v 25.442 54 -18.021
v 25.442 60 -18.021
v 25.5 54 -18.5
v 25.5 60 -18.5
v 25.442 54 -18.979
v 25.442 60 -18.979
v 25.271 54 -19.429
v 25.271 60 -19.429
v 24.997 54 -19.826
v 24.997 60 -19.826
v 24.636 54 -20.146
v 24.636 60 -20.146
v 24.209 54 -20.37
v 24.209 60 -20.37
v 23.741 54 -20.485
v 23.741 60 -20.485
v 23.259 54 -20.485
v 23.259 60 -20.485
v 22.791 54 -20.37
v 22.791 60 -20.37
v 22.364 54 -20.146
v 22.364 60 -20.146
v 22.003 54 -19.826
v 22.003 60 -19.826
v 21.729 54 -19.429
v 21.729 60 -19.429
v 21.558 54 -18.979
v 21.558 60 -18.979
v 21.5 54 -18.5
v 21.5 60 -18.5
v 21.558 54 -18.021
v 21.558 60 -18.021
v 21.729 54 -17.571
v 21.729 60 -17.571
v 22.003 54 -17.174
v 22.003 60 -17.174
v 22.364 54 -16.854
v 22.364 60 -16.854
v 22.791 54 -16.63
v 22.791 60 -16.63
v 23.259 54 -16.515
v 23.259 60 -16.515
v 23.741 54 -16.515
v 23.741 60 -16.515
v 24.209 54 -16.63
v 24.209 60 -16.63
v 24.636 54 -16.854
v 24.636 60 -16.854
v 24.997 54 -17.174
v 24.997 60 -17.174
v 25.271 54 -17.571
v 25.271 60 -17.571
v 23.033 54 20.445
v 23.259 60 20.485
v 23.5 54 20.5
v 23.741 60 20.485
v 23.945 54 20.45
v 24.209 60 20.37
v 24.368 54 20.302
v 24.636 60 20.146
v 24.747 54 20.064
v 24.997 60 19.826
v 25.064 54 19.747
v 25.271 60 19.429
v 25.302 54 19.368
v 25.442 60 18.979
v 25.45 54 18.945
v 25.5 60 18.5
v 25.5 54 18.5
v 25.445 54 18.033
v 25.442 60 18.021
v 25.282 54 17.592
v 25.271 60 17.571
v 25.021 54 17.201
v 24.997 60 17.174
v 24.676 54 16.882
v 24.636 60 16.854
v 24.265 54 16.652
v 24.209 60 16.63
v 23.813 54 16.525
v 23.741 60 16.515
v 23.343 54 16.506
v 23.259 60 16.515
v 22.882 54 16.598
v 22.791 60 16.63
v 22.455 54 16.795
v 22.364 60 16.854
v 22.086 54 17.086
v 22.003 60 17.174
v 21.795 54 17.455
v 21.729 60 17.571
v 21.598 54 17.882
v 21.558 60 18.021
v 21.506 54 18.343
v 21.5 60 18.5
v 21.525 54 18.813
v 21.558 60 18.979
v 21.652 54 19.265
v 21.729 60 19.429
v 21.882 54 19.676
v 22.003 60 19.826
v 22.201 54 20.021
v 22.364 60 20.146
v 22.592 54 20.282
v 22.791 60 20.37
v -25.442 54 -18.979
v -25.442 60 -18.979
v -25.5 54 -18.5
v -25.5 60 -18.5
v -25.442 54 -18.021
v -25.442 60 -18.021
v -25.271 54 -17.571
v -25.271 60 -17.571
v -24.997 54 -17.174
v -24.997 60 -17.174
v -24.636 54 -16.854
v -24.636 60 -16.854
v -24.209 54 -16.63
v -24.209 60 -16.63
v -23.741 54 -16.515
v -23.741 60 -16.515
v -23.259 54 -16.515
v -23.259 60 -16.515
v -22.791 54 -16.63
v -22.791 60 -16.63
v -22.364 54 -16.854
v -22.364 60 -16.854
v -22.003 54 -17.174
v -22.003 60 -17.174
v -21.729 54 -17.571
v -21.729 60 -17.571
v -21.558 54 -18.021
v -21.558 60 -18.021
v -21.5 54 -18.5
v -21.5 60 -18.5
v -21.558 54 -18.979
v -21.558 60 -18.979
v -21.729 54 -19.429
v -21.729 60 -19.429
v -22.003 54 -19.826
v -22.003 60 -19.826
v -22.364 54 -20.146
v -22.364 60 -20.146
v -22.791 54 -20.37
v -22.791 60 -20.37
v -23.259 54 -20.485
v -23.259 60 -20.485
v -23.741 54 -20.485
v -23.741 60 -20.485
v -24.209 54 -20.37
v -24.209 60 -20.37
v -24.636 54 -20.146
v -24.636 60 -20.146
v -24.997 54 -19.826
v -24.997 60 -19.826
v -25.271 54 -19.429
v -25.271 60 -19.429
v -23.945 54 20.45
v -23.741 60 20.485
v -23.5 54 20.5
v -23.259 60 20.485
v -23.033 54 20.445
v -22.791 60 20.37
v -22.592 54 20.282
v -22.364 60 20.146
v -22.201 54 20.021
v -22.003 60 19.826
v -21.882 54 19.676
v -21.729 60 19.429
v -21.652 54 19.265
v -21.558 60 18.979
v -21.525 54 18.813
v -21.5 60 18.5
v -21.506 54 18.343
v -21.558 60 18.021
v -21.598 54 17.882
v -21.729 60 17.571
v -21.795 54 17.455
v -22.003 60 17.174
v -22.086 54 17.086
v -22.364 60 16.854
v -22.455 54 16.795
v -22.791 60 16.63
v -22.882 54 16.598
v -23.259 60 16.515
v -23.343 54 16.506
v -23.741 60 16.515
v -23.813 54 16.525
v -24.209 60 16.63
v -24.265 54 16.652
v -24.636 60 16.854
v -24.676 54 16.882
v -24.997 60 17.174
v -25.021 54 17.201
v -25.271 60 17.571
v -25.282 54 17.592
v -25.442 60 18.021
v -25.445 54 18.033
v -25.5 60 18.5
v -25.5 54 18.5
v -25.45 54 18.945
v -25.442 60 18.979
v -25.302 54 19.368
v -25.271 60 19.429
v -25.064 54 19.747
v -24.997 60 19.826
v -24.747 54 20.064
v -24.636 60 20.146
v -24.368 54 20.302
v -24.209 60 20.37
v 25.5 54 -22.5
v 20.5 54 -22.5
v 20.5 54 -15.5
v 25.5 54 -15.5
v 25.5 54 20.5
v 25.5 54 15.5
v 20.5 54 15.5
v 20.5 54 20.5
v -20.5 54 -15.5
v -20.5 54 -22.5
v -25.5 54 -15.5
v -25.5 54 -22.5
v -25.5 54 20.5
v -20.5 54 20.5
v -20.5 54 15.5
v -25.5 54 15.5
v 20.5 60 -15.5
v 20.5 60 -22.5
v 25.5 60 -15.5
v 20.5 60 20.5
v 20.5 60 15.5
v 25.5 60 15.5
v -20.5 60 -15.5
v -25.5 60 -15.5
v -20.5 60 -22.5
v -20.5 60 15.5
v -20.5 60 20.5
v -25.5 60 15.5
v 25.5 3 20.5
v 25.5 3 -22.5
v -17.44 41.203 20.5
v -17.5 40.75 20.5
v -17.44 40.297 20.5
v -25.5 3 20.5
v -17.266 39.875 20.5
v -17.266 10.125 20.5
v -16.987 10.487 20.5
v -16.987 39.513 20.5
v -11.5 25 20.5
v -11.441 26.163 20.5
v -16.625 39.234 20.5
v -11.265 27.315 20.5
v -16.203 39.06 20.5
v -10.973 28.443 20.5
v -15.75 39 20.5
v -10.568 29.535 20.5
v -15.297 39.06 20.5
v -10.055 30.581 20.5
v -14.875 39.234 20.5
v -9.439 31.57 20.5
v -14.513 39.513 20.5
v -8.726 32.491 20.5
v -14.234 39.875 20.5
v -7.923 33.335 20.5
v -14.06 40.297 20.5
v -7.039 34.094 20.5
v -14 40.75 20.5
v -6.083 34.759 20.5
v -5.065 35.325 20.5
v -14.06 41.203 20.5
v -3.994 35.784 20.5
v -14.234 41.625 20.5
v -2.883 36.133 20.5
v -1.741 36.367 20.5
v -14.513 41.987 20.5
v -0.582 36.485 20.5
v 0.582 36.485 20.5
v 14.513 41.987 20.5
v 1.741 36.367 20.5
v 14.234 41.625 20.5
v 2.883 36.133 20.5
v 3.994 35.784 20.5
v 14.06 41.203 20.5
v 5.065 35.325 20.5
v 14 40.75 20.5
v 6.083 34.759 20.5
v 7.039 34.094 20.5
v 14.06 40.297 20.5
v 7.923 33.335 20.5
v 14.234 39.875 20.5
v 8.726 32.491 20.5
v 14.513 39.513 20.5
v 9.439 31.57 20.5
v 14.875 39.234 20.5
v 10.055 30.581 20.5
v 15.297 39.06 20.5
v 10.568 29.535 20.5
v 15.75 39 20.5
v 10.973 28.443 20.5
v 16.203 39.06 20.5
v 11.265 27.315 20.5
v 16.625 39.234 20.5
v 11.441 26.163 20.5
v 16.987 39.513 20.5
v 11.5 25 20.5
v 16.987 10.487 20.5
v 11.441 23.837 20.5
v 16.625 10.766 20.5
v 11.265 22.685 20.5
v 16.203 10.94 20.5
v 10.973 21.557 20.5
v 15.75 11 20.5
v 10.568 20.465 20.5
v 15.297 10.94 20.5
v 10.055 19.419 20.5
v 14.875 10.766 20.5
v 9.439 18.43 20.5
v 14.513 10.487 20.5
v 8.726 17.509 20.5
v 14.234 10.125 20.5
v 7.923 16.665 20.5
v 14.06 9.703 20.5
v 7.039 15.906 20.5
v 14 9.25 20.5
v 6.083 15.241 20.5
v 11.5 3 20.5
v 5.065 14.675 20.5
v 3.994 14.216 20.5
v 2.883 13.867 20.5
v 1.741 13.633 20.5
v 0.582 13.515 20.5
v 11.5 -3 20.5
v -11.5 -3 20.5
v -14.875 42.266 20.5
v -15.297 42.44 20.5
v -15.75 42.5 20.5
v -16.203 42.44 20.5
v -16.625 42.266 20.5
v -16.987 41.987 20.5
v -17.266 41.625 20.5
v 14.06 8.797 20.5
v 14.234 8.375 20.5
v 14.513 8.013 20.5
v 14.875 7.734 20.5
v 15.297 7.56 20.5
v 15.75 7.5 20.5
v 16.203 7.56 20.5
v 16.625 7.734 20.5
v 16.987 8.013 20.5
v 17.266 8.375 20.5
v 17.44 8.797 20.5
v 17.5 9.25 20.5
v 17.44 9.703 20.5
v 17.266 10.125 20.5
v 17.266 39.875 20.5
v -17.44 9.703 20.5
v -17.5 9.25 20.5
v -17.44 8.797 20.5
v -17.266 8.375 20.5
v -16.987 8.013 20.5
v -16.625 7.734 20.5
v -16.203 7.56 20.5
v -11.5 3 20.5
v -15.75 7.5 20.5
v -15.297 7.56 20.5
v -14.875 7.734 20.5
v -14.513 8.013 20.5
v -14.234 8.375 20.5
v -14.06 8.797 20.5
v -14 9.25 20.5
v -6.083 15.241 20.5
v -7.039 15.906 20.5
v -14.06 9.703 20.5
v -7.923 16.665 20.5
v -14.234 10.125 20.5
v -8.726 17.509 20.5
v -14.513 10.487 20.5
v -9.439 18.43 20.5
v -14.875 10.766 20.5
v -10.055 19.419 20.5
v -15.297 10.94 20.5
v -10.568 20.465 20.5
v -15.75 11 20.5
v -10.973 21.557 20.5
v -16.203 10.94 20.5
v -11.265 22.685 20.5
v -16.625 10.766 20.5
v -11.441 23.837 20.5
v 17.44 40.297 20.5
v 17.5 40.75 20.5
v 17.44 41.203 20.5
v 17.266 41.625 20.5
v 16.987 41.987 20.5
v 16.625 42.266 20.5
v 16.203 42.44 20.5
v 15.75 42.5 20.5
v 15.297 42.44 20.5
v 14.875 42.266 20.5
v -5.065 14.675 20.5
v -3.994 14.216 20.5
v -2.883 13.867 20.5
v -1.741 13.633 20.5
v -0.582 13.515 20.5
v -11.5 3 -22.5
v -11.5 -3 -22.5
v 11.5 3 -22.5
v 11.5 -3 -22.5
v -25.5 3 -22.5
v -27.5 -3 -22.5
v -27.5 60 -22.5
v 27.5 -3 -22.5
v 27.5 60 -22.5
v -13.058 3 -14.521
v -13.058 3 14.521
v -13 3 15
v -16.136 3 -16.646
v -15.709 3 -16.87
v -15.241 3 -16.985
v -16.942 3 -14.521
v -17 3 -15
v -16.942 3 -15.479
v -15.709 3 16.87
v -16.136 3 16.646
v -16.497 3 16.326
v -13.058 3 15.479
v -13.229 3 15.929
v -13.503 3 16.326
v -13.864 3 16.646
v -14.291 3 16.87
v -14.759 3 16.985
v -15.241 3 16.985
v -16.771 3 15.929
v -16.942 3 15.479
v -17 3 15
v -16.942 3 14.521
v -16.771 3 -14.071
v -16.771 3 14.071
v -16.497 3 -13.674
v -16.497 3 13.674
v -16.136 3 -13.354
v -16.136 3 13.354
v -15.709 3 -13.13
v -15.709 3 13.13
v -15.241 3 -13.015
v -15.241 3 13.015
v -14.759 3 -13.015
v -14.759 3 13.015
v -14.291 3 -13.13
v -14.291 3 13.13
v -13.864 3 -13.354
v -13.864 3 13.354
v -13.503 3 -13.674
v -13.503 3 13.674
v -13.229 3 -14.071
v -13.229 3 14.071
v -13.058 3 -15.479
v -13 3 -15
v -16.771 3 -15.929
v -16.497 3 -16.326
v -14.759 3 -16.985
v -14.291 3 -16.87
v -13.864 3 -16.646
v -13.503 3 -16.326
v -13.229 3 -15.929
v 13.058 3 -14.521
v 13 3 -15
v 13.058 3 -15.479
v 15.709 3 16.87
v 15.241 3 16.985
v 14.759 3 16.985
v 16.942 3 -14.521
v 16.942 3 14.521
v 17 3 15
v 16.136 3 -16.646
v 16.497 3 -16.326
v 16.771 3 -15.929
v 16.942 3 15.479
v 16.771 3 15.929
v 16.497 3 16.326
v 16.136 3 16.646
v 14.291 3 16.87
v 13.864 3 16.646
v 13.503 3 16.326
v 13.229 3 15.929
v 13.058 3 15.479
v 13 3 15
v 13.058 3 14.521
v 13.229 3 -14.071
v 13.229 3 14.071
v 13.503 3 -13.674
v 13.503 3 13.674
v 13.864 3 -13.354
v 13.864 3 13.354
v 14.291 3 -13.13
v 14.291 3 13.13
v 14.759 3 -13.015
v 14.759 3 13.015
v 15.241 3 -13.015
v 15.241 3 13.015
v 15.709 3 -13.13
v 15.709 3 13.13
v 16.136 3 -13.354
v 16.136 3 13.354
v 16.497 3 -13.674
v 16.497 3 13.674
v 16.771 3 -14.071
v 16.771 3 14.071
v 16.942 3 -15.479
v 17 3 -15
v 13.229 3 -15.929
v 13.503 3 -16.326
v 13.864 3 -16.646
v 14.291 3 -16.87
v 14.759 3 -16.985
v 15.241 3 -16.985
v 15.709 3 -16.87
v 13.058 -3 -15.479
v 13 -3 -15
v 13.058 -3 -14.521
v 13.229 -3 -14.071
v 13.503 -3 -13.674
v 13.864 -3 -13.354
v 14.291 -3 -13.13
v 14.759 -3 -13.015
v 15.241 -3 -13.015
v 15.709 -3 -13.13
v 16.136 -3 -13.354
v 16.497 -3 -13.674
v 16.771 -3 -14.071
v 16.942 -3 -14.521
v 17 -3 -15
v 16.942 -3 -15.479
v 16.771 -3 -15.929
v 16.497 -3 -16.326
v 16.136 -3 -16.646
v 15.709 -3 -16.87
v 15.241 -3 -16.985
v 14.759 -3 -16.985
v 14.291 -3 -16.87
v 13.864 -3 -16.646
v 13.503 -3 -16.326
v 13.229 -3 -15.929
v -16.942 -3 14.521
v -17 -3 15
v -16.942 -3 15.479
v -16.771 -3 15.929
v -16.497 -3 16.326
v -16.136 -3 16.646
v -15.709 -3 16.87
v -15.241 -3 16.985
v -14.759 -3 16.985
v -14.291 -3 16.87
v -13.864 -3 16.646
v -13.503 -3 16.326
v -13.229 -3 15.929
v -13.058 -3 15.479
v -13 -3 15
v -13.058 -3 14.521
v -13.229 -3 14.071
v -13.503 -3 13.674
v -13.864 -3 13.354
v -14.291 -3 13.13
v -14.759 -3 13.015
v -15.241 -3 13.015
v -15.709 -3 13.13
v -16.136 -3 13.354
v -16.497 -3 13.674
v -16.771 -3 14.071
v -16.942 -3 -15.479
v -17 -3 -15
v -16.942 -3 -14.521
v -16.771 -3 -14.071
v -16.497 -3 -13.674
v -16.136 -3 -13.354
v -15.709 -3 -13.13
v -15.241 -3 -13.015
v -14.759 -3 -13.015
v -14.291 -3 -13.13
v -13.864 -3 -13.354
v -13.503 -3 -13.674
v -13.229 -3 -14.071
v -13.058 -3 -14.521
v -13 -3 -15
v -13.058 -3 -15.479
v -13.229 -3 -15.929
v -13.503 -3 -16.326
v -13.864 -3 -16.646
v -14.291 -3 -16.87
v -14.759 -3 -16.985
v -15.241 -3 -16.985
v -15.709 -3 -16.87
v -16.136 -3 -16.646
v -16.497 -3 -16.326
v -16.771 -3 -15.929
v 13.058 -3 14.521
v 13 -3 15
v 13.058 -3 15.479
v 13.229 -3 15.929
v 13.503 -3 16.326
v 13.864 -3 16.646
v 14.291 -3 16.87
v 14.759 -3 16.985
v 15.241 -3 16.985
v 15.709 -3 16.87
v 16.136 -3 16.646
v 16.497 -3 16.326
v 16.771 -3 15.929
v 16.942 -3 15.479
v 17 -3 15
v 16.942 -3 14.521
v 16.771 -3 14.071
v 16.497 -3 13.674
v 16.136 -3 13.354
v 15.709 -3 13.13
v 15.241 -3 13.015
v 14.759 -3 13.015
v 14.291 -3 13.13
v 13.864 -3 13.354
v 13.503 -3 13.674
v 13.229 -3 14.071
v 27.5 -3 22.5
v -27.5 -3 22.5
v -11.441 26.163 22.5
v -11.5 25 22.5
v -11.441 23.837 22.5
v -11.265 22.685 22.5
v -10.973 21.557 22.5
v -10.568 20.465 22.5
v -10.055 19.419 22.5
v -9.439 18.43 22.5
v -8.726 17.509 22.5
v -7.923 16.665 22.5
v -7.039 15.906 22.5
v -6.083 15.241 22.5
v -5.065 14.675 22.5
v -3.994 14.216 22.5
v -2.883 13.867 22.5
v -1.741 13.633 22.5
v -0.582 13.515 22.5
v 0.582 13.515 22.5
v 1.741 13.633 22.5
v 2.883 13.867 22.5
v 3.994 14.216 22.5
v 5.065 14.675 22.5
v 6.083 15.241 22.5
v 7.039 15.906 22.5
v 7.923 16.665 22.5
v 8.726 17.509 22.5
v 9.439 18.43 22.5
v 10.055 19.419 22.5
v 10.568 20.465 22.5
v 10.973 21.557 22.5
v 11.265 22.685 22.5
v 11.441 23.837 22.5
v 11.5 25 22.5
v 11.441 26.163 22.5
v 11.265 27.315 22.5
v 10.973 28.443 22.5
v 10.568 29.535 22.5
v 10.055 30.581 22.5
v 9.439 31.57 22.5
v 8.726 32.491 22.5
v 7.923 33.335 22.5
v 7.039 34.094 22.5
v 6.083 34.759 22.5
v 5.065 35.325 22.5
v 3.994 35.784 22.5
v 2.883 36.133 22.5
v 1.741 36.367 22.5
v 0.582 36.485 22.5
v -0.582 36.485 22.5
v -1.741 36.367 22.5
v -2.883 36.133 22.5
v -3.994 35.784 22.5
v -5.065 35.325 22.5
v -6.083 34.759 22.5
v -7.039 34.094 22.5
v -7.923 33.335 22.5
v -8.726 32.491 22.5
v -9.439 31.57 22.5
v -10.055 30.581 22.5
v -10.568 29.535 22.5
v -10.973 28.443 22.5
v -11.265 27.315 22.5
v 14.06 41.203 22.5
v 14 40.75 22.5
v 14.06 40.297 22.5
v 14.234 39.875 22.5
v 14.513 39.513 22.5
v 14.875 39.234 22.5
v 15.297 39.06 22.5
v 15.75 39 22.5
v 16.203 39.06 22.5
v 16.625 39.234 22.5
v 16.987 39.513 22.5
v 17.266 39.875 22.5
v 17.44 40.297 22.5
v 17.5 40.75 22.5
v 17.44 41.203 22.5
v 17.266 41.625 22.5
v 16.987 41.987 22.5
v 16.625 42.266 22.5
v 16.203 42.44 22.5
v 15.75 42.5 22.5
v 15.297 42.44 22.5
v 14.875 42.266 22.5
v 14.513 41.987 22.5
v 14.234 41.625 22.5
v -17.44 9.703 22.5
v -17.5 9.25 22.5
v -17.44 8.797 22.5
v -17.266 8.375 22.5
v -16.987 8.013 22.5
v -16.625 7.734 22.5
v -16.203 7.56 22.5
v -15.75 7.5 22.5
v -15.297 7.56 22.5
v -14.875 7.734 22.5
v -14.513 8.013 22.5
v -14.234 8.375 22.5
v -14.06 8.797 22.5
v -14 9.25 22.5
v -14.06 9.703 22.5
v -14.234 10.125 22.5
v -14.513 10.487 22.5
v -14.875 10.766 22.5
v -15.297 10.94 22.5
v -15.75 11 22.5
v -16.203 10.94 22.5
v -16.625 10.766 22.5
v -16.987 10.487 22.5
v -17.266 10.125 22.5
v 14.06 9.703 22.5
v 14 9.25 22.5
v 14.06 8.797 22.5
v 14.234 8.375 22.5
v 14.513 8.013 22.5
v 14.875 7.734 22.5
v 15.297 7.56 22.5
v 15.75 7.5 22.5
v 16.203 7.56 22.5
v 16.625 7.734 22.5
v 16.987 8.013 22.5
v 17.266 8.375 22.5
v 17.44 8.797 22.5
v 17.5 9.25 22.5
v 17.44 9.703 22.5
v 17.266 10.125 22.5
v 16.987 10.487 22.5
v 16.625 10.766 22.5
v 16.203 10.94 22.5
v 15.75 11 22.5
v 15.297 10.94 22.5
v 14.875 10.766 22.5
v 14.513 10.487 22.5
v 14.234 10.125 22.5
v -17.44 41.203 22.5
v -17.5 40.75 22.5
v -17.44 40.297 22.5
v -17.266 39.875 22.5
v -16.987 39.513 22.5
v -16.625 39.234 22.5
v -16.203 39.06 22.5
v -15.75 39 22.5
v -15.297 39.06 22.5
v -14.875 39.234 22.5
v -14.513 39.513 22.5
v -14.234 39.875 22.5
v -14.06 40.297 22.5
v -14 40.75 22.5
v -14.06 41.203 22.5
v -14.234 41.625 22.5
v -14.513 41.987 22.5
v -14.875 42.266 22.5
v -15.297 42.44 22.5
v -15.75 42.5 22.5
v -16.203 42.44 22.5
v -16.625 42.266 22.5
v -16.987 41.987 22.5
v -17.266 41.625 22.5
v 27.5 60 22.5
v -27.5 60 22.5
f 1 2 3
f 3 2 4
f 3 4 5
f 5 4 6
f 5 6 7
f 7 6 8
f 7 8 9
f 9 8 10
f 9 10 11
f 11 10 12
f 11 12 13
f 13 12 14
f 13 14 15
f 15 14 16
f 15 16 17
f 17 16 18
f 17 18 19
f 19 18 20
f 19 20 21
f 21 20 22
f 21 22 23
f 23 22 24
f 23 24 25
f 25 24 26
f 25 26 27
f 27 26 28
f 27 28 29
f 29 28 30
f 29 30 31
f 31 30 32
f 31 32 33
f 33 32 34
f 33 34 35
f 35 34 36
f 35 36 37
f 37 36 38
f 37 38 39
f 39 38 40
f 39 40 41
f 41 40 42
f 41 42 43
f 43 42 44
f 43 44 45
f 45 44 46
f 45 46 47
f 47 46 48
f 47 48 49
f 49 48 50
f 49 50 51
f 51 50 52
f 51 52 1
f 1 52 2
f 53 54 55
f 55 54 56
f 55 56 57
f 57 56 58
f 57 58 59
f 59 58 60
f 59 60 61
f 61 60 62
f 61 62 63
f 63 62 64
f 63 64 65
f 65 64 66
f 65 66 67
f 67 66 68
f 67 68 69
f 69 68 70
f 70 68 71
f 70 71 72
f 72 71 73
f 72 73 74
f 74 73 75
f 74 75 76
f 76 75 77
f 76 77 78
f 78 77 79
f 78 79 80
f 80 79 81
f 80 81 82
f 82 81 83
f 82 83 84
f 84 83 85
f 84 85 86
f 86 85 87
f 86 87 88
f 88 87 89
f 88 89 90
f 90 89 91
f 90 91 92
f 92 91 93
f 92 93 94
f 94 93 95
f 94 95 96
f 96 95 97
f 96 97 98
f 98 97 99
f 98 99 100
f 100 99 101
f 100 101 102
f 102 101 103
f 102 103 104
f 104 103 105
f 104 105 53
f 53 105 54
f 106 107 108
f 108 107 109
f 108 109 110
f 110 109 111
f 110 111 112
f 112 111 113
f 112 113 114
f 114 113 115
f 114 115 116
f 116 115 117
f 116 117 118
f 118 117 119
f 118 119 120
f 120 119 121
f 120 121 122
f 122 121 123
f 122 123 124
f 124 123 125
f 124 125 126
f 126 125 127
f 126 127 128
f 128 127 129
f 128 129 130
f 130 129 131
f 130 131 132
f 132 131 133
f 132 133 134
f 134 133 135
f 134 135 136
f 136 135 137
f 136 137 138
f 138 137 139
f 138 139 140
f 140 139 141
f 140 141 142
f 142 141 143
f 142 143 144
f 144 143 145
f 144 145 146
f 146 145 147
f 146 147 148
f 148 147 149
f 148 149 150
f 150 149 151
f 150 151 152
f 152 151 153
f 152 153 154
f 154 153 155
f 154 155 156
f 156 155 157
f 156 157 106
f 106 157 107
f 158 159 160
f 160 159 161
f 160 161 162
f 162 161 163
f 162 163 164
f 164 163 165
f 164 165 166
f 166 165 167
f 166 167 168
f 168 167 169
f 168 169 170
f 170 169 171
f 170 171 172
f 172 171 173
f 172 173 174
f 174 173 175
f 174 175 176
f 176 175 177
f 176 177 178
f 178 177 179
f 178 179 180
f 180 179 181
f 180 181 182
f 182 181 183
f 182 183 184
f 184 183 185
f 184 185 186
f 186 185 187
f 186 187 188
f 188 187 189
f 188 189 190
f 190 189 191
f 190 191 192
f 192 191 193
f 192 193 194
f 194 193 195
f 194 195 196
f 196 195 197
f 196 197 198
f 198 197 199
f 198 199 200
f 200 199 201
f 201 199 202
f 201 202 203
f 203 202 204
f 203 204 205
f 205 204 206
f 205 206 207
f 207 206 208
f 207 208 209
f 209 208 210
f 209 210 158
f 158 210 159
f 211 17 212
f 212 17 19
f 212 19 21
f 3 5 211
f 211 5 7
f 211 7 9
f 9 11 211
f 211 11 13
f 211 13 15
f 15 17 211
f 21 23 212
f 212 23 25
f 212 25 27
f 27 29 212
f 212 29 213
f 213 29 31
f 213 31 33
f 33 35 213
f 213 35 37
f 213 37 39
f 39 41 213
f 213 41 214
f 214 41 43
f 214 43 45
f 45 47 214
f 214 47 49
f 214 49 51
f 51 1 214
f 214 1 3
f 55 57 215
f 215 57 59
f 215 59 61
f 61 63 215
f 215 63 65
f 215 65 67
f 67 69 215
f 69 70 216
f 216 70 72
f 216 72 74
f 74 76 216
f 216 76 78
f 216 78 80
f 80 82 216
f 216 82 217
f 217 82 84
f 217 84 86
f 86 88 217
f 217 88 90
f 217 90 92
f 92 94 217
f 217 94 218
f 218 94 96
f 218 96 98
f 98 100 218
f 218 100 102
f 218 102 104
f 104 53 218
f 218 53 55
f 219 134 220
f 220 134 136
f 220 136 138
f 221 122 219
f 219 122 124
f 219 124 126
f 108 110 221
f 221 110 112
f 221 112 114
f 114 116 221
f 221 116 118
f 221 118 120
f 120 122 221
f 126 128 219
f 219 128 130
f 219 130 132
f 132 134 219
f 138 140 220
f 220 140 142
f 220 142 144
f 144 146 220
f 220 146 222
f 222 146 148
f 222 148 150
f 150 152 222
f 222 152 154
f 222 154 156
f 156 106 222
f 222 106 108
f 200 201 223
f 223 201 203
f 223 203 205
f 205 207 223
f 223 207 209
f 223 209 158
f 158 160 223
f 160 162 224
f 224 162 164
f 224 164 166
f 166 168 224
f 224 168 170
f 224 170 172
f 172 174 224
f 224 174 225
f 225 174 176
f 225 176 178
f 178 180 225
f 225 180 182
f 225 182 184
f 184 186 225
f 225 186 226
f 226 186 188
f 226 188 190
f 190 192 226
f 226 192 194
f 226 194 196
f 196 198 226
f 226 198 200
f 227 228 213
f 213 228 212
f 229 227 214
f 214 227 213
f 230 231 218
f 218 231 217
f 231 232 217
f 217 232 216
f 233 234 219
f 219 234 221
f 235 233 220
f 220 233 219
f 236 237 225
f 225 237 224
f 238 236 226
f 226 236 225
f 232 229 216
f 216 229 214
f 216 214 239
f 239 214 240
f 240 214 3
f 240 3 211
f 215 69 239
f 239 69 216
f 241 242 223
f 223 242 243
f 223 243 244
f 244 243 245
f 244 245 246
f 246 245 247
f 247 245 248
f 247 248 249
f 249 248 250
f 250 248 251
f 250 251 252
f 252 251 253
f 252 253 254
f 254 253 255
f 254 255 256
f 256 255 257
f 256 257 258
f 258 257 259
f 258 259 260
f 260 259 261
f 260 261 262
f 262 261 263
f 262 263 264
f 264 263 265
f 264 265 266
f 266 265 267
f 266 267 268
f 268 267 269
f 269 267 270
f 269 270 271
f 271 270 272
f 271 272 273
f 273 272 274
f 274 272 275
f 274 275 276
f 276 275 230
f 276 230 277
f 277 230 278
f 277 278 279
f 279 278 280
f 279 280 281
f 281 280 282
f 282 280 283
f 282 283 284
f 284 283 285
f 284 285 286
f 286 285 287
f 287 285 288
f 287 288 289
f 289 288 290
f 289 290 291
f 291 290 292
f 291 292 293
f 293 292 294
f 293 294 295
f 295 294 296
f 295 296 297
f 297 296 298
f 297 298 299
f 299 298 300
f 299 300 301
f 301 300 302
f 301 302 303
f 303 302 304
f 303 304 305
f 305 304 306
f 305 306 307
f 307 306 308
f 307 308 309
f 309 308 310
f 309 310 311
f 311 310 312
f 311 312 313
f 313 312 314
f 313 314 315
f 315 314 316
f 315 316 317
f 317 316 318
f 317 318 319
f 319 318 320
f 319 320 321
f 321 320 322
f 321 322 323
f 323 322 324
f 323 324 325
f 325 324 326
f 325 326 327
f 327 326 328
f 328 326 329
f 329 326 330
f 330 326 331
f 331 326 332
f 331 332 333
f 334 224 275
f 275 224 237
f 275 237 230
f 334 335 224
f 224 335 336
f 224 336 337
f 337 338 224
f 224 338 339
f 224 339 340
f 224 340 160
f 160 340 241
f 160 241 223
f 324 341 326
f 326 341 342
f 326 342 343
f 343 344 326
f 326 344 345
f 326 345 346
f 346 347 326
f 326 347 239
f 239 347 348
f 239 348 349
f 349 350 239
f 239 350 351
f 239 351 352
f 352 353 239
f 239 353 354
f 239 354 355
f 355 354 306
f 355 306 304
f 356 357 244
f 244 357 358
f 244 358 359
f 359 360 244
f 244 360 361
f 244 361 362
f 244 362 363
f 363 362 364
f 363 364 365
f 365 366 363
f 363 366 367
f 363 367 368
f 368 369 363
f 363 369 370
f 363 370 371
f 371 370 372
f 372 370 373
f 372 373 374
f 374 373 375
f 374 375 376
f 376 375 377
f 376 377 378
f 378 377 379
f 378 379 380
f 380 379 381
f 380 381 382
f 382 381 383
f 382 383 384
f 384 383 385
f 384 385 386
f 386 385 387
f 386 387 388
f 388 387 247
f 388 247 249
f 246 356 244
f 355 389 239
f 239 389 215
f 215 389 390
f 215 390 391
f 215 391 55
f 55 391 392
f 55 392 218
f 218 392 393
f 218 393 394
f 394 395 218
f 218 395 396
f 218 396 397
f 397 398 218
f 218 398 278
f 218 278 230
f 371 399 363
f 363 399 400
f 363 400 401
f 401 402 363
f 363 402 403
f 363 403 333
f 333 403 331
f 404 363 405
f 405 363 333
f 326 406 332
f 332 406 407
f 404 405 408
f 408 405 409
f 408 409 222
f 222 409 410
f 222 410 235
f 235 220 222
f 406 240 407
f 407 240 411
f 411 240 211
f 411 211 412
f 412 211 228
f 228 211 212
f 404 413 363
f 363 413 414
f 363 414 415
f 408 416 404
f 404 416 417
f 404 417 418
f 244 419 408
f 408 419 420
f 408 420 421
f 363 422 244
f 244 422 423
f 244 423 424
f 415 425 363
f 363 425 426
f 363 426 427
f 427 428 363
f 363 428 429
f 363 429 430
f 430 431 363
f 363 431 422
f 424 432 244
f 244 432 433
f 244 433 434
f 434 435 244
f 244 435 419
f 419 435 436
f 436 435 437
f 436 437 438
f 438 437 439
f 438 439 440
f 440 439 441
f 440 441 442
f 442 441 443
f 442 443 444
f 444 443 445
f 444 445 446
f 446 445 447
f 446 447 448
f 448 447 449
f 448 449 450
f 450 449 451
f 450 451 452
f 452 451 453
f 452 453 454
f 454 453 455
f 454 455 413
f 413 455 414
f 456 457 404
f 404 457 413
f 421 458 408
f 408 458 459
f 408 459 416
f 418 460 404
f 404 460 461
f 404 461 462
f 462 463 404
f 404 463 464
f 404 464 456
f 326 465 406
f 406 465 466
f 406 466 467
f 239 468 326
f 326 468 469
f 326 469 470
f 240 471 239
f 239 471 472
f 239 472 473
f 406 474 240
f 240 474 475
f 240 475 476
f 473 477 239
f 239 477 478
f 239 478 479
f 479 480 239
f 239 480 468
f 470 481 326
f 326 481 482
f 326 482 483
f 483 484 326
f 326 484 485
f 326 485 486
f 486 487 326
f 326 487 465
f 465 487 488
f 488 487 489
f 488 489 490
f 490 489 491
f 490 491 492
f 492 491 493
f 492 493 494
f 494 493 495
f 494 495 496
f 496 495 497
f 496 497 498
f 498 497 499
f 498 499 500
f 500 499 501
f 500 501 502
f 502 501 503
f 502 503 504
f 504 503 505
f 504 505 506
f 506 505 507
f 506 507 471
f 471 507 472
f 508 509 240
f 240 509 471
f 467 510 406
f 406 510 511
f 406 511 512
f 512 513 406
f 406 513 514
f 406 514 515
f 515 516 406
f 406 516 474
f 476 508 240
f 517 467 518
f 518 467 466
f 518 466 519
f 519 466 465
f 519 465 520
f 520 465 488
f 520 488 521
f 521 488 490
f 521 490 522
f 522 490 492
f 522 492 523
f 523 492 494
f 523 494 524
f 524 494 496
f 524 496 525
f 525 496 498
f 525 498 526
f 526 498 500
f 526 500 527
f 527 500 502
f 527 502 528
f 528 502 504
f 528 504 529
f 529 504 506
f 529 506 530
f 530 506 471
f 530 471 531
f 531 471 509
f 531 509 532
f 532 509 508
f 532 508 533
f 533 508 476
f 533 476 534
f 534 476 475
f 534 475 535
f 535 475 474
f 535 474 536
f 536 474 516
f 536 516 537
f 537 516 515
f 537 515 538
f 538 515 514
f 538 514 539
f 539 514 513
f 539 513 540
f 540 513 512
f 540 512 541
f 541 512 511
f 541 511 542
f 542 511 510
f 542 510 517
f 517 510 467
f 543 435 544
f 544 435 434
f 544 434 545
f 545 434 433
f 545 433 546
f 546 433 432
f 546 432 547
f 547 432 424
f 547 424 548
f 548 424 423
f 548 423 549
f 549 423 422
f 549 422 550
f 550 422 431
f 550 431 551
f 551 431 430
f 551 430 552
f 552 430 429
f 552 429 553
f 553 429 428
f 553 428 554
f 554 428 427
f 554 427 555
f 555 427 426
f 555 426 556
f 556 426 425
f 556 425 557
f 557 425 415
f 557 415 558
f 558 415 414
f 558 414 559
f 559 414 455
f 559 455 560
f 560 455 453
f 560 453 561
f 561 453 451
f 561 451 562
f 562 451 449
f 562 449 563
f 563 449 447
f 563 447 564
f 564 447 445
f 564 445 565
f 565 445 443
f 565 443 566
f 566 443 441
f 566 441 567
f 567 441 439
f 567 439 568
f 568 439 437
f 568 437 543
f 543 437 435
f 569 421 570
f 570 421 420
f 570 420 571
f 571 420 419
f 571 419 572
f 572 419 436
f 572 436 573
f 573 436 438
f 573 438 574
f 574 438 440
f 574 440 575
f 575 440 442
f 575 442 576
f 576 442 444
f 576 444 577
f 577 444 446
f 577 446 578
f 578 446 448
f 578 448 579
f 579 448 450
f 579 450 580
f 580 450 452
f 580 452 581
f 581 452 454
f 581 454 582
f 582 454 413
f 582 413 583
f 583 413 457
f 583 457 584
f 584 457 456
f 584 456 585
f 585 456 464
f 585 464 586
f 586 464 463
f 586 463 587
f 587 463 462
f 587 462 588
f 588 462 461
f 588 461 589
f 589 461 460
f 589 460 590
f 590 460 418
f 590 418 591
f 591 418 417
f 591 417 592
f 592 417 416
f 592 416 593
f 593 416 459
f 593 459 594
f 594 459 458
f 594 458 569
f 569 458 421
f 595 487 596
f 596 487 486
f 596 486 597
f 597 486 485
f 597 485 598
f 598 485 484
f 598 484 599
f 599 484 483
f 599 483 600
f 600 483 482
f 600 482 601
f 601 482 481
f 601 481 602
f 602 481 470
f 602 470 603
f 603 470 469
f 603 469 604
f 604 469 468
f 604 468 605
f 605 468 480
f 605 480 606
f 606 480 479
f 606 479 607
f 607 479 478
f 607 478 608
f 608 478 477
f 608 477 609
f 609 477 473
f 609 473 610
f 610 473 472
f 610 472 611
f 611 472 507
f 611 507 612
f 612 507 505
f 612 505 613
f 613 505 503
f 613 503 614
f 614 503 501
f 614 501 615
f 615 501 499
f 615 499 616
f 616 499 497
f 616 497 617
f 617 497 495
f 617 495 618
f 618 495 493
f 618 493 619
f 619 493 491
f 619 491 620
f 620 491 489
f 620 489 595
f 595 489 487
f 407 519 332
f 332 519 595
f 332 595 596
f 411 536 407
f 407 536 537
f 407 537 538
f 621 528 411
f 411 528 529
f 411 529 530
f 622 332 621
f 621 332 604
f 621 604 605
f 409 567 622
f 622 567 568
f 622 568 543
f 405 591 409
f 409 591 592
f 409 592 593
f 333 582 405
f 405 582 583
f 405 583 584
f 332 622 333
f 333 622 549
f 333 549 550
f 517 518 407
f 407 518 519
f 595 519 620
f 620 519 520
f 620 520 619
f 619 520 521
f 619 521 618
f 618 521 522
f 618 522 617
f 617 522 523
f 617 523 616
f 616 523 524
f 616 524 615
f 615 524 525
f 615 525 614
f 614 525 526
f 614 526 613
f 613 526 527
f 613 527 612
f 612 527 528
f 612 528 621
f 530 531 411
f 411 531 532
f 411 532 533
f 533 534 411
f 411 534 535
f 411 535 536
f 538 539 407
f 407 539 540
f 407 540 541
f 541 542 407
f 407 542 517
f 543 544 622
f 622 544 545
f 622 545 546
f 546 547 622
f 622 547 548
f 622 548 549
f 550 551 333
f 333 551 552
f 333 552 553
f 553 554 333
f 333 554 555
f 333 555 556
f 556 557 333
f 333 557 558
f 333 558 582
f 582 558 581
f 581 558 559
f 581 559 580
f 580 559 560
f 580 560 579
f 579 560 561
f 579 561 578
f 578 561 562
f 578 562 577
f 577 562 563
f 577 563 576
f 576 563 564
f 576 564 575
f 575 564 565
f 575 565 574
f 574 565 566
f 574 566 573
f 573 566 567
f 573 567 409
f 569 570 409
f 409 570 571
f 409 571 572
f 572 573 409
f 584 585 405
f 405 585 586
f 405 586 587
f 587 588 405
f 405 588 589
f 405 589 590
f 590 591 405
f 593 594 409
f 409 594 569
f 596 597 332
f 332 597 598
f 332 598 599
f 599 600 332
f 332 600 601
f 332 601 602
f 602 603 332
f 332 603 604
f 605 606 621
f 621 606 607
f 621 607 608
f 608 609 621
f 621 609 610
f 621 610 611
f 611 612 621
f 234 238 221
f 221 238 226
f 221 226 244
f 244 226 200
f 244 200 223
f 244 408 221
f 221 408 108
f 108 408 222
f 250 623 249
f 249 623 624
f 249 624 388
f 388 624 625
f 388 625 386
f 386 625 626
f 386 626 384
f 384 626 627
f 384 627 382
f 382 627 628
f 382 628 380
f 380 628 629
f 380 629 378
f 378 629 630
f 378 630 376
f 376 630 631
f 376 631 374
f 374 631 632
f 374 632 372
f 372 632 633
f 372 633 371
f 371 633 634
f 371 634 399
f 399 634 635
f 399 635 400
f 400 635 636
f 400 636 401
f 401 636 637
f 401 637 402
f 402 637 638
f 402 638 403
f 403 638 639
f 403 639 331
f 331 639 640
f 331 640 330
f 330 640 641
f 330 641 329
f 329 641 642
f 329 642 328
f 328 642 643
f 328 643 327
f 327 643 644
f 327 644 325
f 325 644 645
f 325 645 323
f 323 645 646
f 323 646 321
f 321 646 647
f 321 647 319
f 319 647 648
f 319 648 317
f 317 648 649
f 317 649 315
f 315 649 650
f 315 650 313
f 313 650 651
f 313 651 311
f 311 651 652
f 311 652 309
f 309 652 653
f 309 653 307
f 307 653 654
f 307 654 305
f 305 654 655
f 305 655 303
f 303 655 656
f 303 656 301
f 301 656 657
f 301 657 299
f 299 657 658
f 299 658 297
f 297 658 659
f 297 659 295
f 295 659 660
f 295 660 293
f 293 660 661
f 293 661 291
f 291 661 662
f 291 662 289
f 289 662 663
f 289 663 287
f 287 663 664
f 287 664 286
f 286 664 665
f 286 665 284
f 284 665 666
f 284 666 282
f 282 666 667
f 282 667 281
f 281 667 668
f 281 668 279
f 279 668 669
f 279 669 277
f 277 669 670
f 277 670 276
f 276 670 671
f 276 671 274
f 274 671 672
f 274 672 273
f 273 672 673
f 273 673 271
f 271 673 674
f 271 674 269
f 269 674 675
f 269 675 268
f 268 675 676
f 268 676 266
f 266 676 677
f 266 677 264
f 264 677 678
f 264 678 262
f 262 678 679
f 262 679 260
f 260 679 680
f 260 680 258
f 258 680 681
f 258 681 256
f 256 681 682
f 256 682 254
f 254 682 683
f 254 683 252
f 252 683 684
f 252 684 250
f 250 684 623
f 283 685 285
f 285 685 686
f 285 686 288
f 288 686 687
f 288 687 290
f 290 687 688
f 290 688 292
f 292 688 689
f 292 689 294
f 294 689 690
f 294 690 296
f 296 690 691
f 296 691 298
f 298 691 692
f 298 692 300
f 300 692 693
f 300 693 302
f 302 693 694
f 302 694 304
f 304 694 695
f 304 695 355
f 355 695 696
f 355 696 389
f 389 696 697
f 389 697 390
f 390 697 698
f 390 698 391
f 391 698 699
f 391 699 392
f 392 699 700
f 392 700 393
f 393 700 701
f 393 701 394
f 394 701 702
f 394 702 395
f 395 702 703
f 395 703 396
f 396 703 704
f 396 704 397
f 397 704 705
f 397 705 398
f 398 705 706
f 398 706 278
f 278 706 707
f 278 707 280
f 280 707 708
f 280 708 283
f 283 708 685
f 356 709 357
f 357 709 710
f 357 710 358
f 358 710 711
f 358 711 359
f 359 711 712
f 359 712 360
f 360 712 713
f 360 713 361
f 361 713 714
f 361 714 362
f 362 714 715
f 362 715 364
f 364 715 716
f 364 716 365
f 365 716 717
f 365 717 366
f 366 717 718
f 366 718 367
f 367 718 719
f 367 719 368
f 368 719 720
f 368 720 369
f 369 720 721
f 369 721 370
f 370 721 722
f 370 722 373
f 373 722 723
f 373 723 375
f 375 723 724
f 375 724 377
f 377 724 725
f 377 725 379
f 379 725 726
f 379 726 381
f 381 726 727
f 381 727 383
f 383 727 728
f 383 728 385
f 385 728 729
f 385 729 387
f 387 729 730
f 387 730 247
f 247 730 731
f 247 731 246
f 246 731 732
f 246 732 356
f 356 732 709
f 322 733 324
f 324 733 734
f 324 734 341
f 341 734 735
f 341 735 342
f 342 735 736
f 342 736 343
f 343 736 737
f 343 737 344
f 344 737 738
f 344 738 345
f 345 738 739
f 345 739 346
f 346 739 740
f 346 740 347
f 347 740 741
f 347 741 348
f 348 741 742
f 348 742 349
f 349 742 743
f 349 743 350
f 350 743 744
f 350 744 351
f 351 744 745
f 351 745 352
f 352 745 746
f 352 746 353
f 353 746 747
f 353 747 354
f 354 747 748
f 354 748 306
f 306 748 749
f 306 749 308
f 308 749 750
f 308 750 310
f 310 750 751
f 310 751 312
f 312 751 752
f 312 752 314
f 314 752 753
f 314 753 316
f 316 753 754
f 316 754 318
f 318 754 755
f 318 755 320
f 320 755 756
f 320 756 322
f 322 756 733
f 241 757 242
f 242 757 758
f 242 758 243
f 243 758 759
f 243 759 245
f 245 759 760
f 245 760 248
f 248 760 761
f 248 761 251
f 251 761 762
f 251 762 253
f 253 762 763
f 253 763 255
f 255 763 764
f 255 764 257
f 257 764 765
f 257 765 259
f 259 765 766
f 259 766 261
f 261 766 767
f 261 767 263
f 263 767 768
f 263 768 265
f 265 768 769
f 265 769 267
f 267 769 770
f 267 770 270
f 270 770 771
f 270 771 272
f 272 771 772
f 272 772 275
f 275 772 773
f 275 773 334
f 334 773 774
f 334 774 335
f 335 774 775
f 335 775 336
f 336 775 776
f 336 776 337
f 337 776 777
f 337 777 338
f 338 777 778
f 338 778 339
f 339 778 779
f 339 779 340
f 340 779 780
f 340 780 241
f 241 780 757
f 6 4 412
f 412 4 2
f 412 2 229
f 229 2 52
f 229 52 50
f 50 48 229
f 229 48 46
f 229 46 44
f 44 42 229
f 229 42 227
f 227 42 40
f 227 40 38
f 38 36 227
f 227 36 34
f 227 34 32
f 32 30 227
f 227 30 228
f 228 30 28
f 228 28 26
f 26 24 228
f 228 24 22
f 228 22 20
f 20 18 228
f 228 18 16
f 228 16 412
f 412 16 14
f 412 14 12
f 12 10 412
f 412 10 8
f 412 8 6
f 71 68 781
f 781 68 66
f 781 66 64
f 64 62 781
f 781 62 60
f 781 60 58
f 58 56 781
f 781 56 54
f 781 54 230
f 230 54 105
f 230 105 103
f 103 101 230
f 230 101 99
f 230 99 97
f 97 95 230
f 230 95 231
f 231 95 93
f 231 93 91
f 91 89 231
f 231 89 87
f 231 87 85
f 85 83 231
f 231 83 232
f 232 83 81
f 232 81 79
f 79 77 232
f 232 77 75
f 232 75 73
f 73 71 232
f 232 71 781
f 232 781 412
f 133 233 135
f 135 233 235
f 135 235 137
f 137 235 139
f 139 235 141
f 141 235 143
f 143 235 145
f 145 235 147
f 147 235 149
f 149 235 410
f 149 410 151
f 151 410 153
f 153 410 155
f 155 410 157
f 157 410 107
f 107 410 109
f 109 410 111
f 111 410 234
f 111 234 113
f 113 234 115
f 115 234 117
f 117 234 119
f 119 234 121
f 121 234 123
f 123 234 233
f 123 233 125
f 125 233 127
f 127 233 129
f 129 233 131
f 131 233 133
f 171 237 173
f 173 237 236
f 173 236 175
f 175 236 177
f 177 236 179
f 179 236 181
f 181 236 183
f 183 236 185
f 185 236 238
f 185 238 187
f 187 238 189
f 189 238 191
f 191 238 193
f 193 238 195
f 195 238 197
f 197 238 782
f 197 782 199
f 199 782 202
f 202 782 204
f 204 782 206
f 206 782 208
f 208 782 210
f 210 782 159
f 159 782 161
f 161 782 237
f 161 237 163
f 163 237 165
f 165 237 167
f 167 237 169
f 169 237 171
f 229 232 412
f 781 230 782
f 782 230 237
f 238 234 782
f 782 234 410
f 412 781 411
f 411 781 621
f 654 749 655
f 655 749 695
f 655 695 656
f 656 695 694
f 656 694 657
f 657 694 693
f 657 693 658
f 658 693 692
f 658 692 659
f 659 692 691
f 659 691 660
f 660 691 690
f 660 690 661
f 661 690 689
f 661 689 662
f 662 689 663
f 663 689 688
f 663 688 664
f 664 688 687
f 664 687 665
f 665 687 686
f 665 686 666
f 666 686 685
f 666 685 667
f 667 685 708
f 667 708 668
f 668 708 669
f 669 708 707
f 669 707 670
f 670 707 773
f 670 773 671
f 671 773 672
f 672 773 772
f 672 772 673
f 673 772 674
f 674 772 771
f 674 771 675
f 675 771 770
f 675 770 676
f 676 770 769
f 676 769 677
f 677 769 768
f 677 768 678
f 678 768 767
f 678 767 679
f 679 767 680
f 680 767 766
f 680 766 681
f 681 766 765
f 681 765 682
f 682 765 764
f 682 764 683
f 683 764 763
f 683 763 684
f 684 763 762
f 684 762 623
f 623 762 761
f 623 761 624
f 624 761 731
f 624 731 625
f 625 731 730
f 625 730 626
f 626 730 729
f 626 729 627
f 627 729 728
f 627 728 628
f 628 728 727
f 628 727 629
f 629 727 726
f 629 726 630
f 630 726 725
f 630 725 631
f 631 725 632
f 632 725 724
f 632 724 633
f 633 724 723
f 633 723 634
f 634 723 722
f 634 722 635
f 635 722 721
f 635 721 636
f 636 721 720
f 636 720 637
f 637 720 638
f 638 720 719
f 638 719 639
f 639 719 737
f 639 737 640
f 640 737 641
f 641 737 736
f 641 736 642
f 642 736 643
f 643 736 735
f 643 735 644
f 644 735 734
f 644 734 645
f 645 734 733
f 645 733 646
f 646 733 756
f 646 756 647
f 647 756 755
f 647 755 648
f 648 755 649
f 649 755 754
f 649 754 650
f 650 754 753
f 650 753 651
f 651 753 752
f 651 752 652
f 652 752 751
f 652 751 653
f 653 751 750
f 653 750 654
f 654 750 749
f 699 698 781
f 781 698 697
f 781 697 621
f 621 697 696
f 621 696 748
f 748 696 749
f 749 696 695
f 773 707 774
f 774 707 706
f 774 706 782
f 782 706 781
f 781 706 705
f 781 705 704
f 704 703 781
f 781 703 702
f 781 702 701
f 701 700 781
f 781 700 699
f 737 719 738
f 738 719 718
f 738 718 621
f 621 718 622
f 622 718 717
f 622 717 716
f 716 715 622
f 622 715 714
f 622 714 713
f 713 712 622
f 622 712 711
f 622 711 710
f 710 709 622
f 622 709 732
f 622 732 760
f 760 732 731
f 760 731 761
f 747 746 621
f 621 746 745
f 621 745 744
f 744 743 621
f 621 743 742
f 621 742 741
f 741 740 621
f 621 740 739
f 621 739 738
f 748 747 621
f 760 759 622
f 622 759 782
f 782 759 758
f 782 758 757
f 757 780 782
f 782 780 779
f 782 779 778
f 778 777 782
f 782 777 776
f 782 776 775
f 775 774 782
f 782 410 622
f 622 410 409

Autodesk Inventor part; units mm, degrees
ref_plane "YZ Plane" through (0, 0, 0) normal (1, 0, 0) x (0, 1, 0)
ref_plane "XZ Plane" through (0, 0, 0) normal (0, 1, 0) x (-1, 0, 0)
ref_plane "XY Plane" through (0, 0, 0) normal (0, 0, 1) x (1, 0, 0)
sketch "Skizze1" plane through (0, 0, 0) normal (0, 1, 0) x (-1, 0, 0)
  line L0 (-27.5, 22.5) -> (27.5, 22.5)
  line L1 (27.5, 22.5) -> (27.5, -22.5)
  line L2 (27.5, -22.5) -> (-27.5, -22.5)
  line L3 (-27.5, -22.5) -> (-27.5, 22.5)
  line L4 (0, -31.5) -> (0, 31.5) projected
  line L5 (38.5, 0) -> (-38.5, 0) projected
  point P0 (0, 0)
  dimension "d0" = 55
  dimension "d1" = 45
extrude "Extrusion1" add sketch "Skizze1" along normal blind 3
sketch "Skizze2" plane through (0, 3, 0) normal (0, 1, 0) x (1, 0, 0)
  line L0 (-27.5, 22.5) -> (-27.5, -22.5) projected
  line L1 (27.5, -22.5) -> (27.5, 22.5) projected
  line L2 (-27.5, -22.5) -> (27.5, -22.5)
  line L3 (27.5, -22.5) -> (27.5, -20.5)
  line L4 (27.5, -20.5) -> (-27.5, -20.5)
  line L5 (-27.5, -20.5) -> (-27.5, -22.5)
  point P0 (0, 0)
  dimension "d4" = 2
extrude "Extrusion2" add sketch "Skizze2" along normal blind 57
sketch "Skizze3" plane through (-27.5, 0, 22.5) normal (0, 0, 1) x (1, 0, 0)
  circle A0 centre (27.5, 25) radius 11.5
  line L0 (0, 0) -> (55, 0) projected
  line L1 (55, 0) -> (55, 60) projected
  circle A1 centre (43.25, 9.25) radius 1.75
  circle A2 centre (11.75, 9.25) radius 1.75
  circle A3 centre (11.75, 40.75) radius 1.75
  circle A4 centre (43.25, 40.75) radius 1.75
  line L2 (0, 60) -> (55, 60) projected
  line L3 (27.5, 60) -> (27.5, 0)
  line L4 (4.6208, 25) -> (55, 25)
  dimension "d7" = 23
  dimension "d10" = 3.5
  dimension "d11" = 3.5
  dimension "d12" = 3.5
  dimension "d13" = 3.5
  dimension "d17" = 31.5
  dimension "d48" = 0
extrude "Extrusion3" cut sketch "Skizze3" against normal up to surface (2 mm away) contours L4 L3 A0 | A0 L3 L4 | L3 L4 A0 | A0 L4 L3 | A1 | A2 | A3 | A4
sketch "Skizze10" plane through (0, 3, 0) normal (0, 1, 0) x (1, 0, 0)
  line L0 (27.5, -20.5) -> (27.5, 22.5) projected
  line L1 (27.5, 22.5) -> (-27.5, 22.5) projected
  line L2 (27.5, -20.5) -> (25.5, -20.5)
  line L3 (25.5, -20.5) -> (25.5, 22.5)
  line L4 (25.5, 22.5) -> (27.5, 22.5)
  line L5 (27.5, 22.5) -> (27.5, -20.5)
  line L6 (27.5, -20.5) -> (-27.5, -20.5) projected
  line L7 (-27.5, 22.5) -> (-25.5, 22.5)
  line L8 (-25.5, 22.5) -> (-25.5, -20.5)
  line L9 (-25.5, -20.5) -> (-27.5, -20.5)
  line L10 (-27.5, -20.5) -> (-27.5, 22.5)
  point P0 (0, 0)
  point P1 (-27.5, -20.5)
  dimension "d43" = 2
  dimension "d44" = 2
extrude "Extrusion6" add sketch "Skizze10" along normal blind 57 contours L2 L3 L1 L0 | L6 L10 L1 L8
sketch "Skizze11" plane through (0, 0, 0) normal (0, -1, 0) x (1, 0, 0)
  line L0 (27.5, 22.5) -> (27.5, -22.5) projected
  line L1 (-27.5, 22.5) -> (27.5, 22.5) projected
  line L2 (27.5, -22.5) -> (-27.5, -22.5)
  line L3 (-27.5, -22.5) -> (-27.5, 22.5)
  line L4 (-27.5, 22.5) -> (27.5, 22.5)
  line L5 (27.5, 22.5) -> (27.5, -22.5)
  point P0 (0, 0)
extrude "Extrusion7" add sketch "Skizze11" along normal blind 3
sketch "Skizze12" plane through (0, 3, 0) normal (0, 1, 0) x (1, 0, 0)
  circle A0 centre (15, -15) radius 2
  circle A1 centre (-15, -15) radius 2
  circle A2 centre (15, 15) radius 2
  circle A3 centre (-15, 15) radius 2
  line L0 (0, 31.5) -> (0, -31.5) projected
  line L1 (-38.5, 0) -> (38.5, 0) projected
  point P0 (0, 0)
  dimension "d52" = 4
  dimension "d53" = 4
  dimension "d54" = 4
  dimension "d55" = 4
  dimension "d56" = 30
  dimension "d57" = 30
extrude "Extrusion8" cut sketch "Skizze12" against normal up to surface (6 mm away)
sketch "Skizze13" plane through (0, 60, 0) normal (0, 1, 0) x (1, 0, 0)
  line L0 (25.5, -20.5) -> (20.5, -20.5)
  line L1 (20.5, -20.5) -> (20.5, -15.5)
  line L2 (20.5, -15.5) -> (25.5, -15.5)
  line L3 (25.5, -15.5) -> (25.5, -20.5)
  line L4 (-25.5, 22.5) -> (-25.5, -20.5) projected
  line L5 (-25.5, -20.5) -> (-20.5, -20.5)
  line L6 (-20.5, -20.5) -> (-20.5, -15.5)
  line L7 (-20.5, -15.5) -> (-25.5, -15.5)
  line L8 (-25.5, -15.5) -> (-25.5, -20.5)
  line L9 (25.5, 22.5) -> (20.5, 22.5)
  line L10 (20.5, 22.5) -> (20.5, 15.5)
  line L11 (20.5, 15.5) -> (25.5, 15.5)
  line L12 (25.5, 15.5) -> (25.5, 22.5)
  line L13 (25.5, 22.5) -> (-25.5, 22.5) projected
  line L14 (-25.5, 22.5) -> (-20.5, 22.5)
  line L15 (-20.5, 22.5) -> (-20.5, 15.5)
  line L16 (-20.5, 15.5) -> (-25.5, 15.5)
  line L17 (-25.5, 15.5) -> (-25.5, 22.5)
  point P0 (0, 0)
  point P1 (-25.5, -15.5)
  dimension "d60" = 5
  dimension "d61" = 5
  dimension "d62" = 5
  dimension "d63" = 5
  dimension "d64" = 5
  dimension "d65" = 7
  dimension "d66" = 5
  dimension "d67" = 7
sketch "Skizze15" plane through (0, -3, 0) normal (0, -1, 0) x (1, 0, 0)
  line L0 (-27.5, -22.5) -> (27.5, -22.5) projected
  line L1 (-25.5, 20.5) -> (25.5, 20.5) projected
  line L2 (11.5, -22.5) -> (-11.5, -22.5)
  line L3 (-11.5, -22.5) -> (-11.5, 20.5)
  line L4 (-11.5, 20.5) -> (11.5, 20.5)
  line L5 (11.5, 20.5) -> (11.5, -22.5)
  line L6 (0, 31.5) -> (0, -31.5) projected
  line L7 (-38.5, 0) -> (38.5, 0) projected
  circle A0 centre (15, -15) radius 2 projected
  point P0 (0, 0)
  point P1 (11.5, 20.5)
  dimension "d94" = 1.5
extrude "Extrusion11" cut sketch "Skizze15" against normal up to surface (6 mm away) contours L3 L7 L6 L0 | L6 L7 L5 L0 | L3 L1 L6 L7 | L6 L1 L5 L7
extrude "Extrusion12" add sketch "Skizze13" against normal blind 6
sketch "Skizze16" plane through (0, 60, 0) normal (0, 1, 0) x (1, 0, 0)
  line L0 (38.5, 0) -> (-38.5, 0) projected
  line L1 (0, 31.5) -> (0, -31.5) projected
  circle A0 centre (23.5, -18.5) radius 2
  circle A1 centre (-23.5, -18.5) radius 2
  circle A2 centre (-23.5, 18.5) radius 2
  circle A3 centre (23.5, 18.5) radius 2
  line L2 (-27.5, -22.5) -> (27.5, -22.5) projected
  line L3 (27.5, -22.5) -> (27.5, 22.5) projected
  line L4 (27.5, 22.5) -> (20.5, 22.5) projected
  line L5 (-20.5, 22.5) -> (-27.5, 22.5) projected
  line L6 (-27.5, 22.5) -> (-27.5, -22.5) projected
  point P0 (0, 0)
  dimension "d100" = 4
  dimension "d101" = 4
  dimension "d102" = 4
  dimension "d103" = 4
  dimension "d104" = 4
  dimension "d105" = 4
  dimension "d106" = 4
  dimension "d107" = 4
  dimension "d108" = 4
  dimension "d109" = 4
  dimension "d110" = 4
  dimension "d111" = 4
extrude "Extrusion13" cut sketch "Skizze16" against normal up to surface (6 mm away) contours A0 | A1 | A2 | A3
properties part number "_3D-Druck"
